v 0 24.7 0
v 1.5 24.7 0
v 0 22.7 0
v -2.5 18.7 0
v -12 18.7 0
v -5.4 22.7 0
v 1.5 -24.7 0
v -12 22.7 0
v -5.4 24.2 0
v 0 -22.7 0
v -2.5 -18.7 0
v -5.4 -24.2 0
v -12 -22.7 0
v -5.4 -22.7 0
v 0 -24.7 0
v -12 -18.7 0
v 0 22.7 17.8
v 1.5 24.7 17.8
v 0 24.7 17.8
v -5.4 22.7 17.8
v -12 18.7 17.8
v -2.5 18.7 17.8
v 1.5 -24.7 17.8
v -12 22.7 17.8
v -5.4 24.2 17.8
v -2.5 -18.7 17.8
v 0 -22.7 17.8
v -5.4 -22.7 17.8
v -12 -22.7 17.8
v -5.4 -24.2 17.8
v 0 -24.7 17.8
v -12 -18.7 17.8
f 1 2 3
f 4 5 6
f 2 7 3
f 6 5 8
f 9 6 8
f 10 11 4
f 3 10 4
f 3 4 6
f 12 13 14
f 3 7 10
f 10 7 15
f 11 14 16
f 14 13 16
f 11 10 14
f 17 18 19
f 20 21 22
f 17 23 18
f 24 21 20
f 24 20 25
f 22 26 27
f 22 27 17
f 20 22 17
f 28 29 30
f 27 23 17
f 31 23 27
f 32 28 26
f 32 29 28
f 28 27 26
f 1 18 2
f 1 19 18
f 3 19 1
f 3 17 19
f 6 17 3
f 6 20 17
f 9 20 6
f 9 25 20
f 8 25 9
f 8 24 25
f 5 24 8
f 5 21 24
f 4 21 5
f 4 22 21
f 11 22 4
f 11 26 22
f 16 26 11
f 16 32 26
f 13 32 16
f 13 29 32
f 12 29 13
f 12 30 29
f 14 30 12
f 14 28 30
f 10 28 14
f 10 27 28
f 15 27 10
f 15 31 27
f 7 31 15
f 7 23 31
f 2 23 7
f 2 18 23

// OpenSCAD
$fn = $preview ? 16 : 64;

teWidth = 17.8;
slotHeight = 45.4;

plateThickness = 5.4;
topBottomOverlap = 2;
insideThickness = 2.5;
outsideThickness = 1.5;

tabThickness = 4;
tabDepth = 12;
tabNoseLength = 1.5;

module tab()
{
    translate([outsideThickness/2, 0])
    {
        square([outsideThickness, slotHeight + topBottomOverlap*2], center = true);
    }
    translate([-tabDepth/2, slotHeight/2 - tabThickness/2])
    {
        square([tabDepth, tabThickness], center = true);
    }

    translate([-plateThickness, slotHeight/2])
    polygon([[-(tabDepth-plateThickness),0], [0, tabNoseLength], [0, 0]]);
}
linear_extrude(teWidth)
{
    translate([-insideThickness/2, 0])
    {
        square([insideThickness, slotHeight], center = true);
    }
    
    mirror([0,1,0])
    {
        tab();
    }
    tab();
}
